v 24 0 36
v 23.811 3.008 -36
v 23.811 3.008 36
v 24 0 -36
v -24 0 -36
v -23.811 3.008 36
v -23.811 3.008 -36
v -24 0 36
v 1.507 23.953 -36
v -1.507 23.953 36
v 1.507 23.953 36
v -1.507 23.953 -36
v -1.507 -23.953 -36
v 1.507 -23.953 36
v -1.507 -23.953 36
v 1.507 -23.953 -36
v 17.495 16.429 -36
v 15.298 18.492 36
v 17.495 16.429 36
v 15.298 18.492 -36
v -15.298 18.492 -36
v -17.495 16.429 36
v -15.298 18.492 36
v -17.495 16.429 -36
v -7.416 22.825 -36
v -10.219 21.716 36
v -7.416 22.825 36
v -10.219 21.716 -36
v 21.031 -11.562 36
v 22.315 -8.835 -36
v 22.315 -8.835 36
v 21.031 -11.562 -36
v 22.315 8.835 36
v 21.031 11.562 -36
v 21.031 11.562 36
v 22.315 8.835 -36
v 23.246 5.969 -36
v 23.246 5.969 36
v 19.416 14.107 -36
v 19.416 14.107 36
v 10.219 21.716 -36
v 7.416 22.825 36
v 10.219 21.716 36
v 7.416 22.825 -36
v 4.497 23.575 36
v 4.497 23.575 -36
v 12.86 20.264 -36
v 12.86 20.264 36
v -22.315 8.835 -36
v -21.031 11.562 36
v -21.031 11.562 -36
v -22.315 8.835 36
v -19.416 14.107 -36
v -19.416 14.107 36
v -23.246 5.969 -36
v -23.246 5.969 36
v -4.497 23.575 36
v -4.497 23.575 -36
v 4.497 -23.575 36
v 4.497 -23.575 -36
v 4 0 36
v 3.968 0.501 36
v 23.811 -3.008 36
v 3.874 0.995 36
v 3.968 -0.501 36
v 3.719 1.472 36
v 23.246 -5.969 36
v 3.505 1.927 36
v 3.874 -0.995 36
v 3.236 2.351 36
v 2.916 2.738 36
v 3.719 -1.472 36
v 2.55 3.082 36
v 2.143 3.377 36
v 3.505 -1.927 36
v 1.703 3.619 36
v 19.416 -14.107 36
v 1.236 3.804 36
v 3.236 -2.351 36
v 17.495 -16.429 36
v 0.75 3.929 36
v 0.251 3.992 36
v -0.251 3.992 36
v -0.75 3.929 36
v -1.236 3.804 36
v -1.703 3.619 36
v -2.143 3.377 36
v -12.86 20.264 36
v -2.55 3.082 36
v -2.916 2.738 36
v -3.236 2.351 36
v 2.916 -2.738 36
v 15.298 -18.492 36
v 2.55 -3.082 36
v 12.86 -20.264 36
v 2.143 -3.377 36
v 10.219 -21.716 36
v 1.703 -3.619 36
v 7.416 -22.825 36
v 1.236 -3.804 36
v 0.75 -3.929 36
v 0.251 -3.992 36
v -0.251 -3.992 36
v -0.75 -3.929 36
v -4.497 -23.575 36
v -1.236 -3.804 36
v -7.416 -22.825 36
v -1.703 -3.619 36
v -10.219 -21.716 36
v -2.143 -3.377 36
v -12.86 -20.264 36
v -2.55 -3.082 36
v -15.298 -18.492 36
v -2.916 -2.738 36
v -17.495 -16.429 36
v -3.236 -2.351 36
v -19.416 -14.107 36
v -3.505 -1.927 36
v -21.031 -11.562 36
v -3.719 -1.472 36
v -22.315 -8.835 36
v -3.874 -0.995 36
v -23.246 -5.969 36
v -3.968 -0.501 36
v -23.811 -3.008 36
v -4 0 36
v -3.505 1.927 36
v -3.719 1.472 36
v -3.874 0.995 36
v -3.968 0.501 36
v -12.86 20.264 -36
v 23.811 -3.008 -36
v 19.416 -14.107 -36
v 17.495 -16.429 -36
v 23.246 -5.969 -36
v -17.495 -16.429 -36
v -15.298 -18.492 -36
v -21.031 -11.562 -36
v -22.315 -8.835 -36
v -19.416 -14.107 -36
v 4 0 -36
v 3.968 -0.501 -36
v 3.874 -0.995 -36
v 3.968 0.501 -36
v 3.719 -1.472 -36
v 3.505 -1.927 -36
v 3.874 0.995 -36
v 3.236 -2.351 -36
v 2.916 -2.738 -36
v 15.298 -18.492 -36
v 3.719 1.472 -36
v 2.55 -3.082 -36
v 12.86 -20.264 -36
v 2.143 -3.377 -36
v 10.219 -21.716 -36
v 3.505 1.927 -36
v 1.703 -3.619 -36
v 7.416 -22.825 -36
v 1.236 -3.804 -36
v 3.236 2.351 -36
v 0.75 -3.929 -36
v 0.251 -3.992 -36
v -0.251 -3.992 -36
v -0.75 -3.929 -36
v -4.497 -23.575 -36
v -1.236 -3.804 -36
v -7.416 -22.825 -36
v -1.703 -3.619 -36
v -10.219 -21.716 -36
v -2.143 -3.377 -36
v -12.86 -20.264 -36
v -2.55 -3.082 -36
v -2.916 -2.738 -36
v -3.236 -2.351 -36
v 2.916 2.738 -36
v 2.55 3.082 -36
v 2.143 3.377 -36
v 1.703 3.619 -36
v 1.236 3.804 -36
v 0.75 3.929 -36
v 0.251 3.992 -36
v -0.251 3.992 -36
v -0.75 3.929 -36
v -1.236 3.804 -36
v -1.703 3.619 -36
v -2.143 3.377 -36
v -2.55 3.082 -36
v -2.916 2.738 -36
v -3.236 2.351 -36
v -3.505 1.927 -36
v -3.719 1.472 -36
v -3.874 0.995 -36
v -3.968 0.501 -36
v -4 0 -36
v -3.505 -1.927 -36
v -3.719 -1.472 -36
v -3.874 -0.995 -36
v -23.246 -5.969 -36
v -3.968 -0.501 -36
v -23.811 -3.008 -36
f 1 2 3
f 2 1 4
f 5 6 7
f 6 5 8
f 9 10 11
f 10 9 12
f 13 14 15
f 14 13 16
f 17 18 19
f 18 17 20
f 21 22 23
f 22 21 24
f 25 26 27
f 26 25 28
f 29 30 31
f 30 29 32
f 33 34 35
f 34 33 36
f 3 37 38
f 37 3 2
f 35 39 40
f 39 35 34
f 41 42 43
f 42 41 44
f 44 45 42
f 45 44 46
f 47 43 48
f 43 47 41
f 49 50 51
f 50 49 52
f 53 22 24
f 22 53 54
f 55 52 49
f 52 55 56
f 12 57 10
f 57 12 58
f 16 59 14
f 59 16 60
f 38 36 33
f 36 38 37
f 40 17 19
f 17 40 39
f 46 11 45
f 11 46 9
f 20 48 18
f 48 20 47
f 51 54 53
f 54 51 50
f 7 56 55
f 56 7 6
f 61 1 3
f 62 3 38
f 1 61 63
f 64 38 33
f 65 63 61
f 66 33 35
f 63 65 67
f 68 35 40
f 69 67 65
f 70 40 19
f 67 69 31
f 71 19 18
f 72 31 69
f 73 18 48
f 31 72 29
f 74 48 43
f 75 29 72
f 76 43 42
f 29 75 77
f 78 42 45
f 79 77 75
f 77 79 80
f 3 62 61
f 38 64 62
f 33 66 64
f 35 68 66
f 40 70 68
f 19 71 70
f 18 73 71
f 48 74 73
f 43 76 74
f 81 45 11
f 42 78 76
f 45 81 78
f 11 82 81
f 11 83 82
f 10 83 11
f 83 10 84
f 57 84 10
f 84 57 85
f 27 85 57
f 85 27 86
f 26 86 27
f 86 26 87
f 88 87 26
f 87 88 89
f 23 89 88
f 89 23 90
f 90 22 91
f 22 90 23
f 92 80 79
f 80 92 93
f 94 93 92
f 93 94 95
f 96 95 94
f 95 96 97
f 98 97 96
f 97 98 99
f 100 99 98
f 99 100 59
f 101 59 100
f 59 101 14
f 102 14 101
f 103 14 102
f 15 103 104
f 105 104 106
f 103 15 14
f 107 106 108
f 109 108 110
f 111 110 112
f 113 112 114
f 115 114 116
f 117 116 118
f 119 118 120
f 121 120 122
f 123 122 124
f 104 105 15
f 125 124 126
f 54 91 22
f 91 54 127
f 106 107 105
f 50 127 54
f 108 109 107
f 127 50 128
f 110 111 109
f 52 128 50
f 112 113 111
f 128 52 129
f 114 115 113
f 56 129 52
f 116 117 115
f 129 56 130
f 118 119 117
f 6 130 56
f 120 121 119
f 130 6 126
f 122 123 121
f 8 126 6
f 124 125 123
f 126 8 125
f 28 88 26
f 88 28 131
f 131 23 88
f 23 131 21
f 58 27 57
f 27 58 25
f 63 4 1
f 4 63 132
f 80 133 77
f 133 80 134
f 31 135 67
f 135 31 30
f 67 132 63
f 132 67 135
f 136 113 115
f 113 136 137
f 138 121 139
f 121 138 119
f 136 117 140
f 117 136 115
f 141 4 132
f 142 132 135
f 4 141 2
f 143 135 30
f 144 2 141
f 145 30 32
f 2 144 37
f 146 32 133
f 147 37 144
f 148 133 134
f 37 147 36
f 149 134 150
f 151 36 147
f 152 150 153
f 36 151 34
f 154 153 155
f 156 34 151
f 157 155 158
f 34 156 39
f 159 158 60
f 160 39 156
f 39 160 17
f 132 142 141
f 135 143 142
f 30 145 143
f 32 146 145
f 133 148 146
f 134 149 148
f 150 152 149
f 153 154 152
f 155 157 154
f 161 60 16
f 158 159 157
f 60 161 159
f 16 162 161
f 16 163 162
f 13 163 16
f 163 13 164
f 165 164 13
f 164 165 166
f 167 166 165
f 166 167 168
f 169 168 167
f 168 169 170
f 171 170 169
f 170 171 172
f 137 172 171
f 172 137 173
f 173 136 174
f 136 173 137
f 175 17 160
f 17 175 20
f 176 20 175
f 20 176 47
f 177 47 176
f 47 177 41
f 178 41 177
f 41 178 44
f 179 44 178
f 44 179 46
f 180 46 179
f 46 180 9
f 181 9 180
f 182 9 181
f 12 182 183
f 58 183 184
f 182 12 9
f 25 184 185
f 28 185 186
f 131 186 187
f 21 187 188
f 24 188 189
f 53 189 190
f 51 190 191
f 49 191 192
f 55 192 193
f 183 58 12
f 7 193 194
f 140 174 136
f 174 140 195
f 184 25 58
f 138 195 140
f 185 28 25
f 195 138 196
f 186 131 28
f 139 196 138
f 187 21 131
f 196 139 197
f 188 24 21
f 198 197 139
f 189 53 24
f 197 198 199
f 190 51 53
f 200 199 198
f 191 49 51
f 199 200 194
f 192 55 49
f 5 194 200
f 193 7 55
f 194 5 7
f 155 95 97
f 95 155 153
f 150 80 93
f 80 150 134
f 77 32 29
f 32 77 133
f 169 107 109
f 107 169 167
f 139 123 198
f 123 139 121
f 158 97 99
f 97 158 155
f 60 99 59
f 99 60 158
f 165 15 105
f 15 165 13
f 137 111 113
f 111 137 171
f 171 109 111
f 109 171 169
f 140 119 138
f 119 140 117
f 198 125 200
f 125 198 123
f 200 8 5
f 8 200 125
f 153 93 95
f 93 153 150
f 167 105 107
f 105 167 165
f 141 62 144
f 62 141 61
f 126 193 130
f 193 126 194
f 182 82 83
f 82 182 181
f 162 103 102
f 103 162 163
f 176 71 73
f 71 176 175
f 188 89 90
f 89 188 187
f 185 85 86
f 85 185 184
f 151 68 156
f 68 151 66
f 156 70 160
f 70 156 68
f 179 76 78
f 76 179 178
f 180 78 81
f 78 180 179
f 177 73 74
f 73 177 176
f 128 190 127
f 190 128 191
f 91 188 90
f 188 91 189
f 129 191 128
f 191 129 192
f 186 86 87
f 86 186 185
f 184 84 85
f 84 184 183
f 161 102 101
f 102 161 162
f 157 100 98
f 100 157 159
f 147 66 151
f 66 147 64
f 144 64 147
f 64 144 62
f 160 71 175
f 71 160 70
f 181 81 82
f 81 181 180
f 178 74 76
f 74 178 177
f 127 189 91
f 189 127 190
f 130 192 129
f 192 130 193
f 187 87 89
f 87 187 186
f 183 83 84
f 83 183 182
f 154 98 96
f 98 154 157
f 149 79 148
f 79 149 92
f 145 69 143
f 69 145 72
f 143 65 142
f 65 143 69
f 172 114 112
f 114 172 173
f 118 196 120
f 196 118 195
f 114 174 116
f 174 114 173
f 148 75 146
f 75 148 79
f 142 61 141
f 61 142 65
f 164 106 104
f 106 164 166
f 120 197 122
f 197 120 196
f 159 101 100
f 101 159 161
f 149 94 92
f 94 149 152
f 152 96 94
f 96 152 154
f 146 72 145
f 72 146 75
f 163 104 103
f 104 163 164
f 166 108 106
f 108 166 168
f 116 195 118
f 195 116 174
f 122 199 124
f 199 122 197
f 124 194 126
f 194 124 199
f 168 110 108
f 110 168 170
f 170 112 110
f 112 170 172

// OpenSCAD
$fn = 50;


difference() {
	union() {
		translate(v = [0, 0, -36.0000000000]) {
			cylinder(h = 72, r = 24.0000000000);
		}
	}
	union() {
		translate(v = [0, 0, -100.0000000000]) {
			cylinder(h = 200, r = 4.0000000000);
		}
	}
}
